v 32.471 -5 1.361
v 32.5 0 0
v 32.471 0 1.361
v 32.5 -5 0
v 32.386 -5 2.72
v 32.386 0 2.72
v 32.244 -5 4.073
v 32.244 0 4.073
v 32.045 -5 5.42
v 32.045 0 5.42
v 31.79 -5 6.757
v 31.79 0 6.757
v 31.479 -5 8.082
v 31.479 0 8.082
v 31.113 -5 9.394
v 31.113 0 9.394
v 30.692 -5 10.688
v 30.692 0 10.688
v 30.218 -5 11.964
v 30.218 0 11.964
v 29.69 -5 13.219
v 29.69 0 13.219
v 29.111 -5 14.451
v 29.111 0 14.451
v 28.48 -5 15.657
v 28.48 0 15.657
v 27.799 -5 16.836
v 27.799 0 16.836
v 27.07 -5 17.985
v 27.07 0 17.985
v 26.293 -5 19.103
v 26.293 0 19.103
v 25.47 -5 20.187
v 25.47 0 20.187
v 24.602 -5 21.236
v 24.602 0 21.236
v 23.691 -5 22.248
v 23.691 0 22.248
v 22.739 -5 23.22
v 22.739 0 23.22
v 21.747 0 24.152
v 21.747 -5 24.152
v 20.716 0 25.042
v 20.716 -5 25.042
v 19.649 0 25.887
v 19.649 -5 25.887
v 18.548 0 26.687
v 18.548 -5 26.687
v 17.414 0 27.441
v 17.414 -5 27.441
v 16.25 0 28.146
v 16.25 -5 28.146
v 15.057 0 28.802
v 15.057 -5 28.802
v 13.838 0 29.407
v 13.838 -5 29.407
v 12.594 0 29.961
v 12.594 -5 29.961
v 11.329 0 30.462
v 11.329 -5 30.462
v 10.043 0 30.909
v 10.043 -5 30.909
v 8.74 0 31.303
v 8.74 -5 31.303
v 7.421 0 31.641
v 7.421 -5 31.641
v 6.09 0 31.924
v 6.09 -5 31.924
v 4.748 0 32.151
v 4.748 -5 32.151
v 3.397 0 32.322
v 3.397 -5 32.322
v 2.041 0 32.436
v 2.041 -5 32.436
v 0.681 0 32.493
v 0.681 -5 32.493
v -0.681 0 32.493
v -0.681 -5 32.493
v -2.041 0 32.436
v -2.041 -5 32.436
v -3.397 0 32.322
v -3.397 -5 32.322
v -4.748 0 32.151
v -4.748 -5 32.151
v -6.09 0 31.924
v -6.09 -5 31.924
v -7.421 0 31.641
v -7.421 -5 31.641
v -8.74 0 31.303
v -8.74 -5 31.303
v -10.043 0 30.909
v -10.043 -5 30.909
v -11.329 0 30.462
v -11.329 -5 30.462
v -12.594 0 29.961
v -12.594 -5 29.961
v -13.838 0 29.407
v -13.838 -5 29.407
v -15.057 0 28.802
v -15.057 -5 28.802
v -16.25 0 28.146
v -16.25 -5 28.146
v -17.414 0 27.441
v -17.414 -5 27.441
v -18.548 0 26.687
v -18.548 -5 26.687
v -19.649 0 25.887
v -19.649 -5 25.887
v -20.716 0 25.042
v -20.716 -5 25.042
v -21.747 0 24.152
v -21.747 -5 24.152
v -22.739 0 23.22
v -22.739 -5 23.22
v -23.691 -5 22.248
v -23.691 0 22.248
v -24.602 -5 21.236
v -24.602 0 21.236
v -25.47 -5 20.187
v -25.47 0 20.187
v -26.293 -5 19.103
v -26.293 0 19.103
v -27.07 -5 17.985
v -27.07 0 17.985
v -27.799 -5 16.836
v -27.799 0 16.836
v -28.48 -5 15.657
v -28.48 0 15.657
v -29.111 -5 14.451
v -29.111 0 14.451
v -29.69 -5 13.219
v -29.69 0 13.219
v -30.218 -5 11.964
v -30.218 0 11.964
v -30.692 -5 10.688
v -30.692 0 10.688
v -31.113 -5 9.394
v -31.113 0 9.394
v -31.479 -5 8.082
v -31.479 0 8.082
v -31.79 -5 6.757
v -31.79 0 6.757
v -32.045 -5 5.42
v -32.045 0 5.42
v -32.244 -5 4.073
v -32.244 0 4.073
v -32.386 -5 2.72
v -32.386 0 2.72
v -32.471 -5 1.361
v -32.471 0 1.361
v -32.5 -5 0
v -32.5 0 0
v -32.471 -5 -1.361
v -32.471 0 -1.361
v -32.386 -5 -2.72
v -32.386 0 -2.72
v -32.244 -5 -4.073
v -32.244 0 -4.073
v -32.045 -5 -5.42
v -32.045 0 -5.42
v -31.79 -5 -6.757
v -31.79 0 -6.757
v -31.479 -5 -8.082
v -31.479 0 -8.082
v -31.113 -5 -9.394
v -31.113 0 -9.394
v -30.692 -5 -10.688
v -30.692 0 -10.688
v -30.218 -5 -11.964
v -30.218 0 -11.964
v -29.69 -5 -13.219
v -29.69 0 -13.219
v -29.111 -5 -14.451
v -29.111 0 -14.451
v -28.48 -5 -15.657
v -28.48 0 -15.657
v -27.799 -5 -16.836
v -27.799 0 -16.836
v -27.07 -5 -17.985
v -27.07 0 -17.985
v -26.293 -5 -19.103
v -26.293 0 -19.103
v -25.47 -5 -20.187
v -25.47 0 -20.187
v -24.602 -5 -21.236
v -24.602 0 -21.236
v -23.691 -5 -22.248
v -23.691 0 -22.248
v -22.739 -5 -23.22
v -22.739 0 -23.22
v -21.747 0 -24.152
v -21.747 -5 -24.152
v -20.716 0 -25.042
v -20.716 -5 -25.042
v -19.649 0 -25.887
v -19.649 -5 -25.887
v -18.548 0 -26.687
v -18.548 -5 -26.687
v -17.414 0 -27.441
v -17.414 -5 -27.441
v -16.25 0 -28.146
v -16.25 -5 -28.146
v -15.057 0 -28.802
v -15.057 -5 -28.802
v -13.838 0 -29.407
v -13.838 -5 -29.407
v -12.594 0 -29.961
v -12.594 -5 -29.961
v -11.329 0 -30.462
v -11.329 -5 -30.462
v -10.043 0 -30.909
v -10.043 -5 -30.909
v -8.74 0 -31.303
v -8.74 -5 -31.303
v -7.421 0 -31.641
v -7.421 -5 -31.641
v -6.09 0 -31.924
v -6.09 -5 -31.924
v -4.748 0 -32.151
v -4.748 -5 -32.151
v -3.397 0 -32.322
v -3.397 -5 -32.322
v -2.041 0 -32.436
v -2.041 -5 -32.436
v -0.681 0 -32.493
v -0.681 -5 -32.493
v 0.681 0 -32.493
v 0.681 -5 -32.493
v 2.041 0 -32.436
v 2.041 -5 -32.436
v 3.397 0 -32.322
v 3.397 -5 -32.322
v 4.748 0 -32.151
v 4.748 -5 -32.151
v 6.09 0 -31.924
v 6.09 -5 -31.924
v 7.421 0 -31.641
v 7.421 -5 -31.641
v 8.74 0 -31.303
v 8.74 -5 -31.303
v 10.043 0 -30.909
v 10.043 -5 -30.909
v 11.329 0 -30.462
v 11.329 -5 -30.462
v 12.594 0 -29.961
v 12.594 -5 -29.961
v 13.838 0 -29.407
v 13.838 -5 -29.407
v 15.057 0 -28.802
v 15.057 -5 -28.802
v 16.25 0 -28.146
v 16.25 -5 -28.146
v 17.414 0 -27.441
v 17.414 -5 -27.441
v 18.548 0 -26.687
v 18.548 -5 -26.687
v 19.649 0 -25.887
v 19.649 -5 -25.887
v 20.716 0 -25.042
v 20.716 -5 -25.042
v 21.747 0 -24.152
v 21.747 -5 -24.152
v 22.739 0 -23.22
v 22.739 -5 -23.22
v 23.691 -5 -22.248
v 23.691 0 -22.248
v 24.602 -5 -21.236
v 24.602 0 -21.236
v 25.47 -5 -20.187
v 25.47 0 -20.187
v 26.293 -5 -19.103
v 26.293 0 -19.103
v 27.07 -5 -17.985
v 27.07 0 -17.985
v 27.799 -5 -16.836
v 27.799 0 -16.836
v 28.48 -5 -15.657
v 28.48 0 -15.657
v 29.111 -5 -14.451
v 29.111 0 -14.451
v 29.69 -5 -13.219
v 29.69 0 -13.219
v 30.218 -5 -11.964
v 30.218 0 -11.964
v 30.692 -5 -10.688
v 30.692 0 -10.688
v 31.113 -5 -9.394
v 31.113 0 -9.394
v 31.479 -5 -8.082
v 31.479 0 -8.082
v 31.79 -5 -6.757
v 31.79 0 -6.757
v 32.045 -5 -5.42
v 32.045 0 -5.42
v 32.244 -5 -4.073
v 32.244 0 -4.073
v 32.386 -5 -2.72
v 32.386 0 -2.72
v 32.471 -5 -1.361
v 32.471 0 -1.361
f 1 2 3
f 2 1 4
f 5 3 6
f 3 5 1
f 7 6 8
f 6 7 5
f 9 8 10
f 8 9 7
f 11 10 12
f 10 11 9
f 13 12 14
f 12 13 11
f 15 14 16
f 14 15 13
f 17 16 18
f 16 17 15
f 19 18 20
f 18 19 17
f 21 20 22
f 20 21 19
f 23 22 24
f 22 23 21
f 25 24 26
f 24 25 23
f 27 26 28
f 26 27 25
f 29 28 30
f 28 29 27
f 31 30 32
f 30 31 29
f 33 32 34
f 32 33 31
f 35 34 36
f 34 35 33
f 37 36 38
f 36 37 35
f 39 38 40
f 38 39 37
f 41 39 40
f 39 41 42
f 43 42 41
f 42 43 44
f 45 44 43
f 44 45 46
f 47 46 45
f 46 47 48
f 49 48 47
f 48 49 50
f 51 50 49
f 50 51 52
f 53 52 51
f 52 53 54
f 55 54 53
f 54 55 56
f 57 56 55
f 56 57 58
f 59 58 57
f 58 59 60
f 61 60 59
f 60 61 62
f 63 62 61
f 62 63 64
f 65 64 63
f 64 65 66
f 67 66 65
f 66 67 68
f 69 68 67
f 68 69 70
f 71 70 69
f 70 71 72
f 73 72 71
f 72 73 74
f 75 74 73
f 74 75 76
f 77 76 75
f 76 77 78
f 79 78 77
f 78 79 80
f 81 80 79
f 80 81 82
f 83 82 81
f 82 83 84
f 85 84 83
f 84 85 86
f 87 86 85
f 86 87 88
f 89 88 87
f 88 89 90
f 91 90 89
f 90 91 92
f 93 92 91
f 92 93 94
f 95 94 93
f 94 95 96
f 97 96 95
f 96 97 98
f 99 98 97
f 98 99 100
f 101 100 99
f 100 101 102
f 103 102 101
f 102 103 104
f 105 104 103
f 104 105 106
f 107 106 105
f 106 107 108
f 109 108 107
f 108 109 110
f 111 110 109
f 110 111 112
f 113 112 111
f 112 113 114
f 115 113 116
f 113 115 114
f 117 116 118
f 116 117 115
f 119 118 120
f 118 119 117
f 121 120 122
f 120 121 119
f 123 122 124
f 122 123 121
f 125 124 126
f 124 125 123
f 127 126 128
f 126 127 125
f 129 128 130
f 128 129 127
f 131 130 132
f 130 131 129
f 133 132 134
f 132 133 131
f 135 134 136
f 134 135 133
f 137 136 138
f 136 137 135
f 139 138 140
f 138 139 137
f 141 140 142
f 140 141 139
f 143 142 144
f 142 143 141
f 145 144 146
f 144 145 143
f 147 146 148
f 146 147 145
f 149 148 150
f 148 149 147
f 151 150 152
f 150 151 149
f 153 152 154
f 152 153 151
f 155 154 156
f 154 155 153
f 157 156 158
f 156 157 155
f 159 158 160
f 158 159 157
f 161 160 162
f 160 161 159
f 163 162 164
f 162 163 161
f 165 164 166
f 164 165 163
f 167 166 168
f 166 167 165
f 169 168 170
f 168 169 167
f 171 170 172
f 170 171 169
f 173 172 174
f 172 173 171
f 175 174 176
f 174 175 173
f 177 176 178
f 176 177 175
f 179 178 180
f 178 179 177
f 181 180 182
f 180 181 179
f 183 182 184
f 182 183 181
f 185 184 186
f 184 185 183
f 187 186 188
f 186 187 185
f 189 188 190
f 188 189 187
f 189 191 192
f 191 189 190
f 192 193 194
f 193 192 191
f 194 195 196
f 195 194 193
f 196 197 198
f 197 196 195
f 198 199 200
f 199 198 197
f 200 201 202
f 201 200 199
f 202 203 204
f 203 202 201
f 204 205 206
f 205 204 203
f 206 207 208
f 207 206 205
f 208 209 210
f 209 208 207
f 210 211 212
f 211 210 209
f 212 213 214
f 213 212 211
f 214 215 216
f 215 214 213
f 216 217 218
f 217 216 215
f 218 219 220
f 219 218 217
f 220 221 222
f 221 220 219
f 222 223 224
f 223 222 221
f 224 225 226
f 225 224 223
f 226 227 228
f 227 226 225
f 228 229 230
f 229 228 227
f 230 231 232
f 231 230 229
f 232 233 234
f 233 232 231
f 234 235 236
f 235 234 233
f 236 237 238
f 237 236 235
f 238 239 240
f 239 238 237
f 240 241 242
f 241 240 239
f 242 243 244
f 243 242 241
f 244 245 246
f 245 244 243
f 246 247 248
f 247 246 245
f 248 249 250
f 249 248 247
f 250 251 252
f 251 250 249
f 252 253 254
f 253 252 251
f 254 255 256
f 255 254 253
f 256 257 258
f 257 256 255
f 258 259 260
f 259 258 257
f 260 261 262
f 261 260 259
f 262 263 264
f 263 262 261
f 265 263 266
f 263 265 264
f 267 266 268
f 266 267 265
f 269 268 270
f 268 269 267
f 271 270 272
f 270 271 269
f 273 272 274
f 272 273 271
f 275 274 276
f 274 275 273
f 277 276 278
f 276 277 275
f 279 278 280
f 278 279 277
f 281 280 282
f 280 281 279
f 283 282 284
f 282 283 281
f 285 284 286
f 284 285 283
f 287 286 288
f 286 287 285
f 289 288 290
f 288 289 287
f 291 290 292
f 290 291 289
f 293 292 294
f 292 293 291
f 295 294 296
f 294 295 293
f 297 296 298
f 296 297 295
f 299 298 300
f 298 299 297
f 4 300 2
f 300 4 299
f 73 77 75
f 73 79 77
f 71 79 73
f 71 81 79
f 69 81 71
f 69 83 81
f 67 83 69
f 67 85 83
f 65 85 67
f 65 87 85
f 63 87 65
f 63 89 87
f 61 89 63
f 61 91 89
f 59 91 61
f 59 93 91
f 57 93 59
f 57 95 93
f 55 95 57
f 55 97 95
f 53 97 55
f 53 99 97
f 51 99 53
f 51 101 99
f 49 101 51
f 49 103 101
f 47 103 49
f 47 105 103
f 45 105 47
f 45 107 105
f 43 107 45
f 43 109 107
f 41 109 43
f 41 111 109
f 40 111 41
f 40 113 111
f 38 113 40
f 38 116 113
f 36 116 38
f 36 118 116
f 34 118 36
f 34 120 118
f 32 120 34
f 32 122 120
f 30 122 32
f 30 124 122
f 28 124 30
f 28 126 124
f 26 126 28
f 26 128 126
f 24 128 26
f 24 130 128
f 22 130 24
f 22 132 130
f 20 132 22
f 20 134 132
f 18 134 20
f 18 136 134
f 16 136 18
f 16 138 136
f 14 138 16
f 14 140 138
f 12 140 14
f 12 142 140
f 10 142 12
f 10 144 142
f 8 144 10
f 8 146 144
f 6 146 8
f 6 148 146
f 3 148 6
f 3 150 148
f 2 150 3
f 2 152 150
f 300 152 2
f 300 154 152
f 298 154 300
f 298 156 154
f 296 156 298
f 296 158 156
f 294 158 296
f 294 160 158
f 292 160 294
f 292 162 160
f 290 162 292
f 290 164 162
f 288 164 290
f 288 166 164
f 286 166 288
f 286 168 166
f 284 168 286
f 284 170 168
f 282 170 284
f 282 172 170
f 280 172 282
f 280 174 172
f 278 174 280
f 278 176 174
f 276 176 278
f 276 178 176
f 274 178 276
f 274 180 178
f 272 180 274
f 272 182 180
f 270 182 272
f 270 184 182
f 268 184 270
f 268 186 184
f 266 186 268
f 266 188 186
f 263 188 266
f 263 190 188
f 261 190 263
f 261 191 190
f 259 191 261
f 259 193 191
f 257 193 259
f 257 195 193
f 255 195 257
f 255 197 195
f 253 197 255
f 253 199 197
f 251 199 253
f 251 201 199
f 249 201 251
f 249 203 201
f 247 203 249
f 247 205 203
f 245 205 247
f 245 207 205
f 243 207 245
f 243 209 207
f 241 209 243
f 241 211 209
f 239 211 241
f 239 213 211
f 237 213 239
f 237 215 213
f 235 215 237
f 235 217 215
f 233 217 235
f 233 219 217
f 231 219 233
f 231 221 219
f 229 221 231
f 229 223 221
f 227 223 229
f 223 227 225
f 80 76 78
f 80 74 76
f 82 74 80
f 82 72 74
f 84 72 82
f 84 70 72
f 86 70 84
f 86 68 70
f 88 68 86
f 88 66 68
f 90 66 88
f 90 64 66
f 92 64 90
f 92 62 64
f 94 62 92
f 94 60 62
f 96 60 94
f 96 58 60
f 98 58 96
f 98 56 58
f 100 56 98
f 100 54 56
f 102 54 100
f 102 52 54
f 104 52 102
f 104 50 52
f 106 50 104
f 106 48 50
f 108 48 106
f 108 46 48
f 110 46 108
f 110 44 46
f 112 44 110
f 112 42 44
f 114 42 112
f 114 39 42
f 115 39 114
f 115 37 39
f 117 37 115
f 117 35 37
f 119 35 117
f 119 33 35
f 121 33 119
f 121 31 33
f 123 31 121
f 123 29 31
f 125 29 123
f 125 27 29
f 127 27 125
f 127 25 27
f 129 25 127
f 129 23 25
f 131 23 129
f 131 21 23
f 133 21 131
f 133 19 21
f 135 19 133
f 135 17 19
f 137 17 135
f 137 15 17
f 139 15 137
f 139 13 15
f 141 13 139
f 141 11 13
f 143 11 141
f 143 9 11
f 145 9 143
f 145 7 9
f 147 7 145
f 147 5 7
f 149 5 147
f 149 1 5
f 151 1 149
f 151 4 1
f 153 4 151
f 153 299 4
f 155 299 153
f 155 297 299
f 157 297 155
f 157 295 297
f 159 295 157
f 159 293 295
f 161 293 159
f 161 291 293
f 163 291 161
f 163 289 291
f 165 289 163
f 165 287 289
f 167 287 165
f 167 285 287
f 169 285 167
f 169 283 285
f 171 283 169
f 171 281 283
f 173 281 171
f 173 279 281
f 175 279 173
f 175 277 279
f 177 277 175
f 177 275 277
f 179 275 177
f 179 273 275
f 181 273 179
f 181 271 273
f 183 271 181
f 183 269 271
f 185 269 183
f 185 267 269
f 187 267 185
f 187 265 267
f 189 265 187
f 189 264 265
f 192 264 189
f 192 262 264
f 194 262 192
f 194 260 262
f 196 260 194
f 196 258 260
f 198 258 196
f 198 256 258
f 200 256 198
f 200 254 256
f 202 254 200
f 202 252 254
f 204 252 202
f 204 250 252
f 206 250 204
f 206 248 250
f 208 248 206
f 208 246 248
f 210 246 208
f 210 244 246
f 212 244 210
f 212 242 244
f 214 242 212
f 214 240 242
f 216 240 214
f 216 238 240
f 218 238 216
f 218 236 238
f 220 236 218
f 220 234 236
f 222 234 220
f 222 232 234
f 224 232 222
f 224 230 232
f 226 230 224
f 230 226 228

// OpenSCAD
$fn=150; // capacity of smoothless
rotate([90,0,0])cylinder(h=5,d=65);
